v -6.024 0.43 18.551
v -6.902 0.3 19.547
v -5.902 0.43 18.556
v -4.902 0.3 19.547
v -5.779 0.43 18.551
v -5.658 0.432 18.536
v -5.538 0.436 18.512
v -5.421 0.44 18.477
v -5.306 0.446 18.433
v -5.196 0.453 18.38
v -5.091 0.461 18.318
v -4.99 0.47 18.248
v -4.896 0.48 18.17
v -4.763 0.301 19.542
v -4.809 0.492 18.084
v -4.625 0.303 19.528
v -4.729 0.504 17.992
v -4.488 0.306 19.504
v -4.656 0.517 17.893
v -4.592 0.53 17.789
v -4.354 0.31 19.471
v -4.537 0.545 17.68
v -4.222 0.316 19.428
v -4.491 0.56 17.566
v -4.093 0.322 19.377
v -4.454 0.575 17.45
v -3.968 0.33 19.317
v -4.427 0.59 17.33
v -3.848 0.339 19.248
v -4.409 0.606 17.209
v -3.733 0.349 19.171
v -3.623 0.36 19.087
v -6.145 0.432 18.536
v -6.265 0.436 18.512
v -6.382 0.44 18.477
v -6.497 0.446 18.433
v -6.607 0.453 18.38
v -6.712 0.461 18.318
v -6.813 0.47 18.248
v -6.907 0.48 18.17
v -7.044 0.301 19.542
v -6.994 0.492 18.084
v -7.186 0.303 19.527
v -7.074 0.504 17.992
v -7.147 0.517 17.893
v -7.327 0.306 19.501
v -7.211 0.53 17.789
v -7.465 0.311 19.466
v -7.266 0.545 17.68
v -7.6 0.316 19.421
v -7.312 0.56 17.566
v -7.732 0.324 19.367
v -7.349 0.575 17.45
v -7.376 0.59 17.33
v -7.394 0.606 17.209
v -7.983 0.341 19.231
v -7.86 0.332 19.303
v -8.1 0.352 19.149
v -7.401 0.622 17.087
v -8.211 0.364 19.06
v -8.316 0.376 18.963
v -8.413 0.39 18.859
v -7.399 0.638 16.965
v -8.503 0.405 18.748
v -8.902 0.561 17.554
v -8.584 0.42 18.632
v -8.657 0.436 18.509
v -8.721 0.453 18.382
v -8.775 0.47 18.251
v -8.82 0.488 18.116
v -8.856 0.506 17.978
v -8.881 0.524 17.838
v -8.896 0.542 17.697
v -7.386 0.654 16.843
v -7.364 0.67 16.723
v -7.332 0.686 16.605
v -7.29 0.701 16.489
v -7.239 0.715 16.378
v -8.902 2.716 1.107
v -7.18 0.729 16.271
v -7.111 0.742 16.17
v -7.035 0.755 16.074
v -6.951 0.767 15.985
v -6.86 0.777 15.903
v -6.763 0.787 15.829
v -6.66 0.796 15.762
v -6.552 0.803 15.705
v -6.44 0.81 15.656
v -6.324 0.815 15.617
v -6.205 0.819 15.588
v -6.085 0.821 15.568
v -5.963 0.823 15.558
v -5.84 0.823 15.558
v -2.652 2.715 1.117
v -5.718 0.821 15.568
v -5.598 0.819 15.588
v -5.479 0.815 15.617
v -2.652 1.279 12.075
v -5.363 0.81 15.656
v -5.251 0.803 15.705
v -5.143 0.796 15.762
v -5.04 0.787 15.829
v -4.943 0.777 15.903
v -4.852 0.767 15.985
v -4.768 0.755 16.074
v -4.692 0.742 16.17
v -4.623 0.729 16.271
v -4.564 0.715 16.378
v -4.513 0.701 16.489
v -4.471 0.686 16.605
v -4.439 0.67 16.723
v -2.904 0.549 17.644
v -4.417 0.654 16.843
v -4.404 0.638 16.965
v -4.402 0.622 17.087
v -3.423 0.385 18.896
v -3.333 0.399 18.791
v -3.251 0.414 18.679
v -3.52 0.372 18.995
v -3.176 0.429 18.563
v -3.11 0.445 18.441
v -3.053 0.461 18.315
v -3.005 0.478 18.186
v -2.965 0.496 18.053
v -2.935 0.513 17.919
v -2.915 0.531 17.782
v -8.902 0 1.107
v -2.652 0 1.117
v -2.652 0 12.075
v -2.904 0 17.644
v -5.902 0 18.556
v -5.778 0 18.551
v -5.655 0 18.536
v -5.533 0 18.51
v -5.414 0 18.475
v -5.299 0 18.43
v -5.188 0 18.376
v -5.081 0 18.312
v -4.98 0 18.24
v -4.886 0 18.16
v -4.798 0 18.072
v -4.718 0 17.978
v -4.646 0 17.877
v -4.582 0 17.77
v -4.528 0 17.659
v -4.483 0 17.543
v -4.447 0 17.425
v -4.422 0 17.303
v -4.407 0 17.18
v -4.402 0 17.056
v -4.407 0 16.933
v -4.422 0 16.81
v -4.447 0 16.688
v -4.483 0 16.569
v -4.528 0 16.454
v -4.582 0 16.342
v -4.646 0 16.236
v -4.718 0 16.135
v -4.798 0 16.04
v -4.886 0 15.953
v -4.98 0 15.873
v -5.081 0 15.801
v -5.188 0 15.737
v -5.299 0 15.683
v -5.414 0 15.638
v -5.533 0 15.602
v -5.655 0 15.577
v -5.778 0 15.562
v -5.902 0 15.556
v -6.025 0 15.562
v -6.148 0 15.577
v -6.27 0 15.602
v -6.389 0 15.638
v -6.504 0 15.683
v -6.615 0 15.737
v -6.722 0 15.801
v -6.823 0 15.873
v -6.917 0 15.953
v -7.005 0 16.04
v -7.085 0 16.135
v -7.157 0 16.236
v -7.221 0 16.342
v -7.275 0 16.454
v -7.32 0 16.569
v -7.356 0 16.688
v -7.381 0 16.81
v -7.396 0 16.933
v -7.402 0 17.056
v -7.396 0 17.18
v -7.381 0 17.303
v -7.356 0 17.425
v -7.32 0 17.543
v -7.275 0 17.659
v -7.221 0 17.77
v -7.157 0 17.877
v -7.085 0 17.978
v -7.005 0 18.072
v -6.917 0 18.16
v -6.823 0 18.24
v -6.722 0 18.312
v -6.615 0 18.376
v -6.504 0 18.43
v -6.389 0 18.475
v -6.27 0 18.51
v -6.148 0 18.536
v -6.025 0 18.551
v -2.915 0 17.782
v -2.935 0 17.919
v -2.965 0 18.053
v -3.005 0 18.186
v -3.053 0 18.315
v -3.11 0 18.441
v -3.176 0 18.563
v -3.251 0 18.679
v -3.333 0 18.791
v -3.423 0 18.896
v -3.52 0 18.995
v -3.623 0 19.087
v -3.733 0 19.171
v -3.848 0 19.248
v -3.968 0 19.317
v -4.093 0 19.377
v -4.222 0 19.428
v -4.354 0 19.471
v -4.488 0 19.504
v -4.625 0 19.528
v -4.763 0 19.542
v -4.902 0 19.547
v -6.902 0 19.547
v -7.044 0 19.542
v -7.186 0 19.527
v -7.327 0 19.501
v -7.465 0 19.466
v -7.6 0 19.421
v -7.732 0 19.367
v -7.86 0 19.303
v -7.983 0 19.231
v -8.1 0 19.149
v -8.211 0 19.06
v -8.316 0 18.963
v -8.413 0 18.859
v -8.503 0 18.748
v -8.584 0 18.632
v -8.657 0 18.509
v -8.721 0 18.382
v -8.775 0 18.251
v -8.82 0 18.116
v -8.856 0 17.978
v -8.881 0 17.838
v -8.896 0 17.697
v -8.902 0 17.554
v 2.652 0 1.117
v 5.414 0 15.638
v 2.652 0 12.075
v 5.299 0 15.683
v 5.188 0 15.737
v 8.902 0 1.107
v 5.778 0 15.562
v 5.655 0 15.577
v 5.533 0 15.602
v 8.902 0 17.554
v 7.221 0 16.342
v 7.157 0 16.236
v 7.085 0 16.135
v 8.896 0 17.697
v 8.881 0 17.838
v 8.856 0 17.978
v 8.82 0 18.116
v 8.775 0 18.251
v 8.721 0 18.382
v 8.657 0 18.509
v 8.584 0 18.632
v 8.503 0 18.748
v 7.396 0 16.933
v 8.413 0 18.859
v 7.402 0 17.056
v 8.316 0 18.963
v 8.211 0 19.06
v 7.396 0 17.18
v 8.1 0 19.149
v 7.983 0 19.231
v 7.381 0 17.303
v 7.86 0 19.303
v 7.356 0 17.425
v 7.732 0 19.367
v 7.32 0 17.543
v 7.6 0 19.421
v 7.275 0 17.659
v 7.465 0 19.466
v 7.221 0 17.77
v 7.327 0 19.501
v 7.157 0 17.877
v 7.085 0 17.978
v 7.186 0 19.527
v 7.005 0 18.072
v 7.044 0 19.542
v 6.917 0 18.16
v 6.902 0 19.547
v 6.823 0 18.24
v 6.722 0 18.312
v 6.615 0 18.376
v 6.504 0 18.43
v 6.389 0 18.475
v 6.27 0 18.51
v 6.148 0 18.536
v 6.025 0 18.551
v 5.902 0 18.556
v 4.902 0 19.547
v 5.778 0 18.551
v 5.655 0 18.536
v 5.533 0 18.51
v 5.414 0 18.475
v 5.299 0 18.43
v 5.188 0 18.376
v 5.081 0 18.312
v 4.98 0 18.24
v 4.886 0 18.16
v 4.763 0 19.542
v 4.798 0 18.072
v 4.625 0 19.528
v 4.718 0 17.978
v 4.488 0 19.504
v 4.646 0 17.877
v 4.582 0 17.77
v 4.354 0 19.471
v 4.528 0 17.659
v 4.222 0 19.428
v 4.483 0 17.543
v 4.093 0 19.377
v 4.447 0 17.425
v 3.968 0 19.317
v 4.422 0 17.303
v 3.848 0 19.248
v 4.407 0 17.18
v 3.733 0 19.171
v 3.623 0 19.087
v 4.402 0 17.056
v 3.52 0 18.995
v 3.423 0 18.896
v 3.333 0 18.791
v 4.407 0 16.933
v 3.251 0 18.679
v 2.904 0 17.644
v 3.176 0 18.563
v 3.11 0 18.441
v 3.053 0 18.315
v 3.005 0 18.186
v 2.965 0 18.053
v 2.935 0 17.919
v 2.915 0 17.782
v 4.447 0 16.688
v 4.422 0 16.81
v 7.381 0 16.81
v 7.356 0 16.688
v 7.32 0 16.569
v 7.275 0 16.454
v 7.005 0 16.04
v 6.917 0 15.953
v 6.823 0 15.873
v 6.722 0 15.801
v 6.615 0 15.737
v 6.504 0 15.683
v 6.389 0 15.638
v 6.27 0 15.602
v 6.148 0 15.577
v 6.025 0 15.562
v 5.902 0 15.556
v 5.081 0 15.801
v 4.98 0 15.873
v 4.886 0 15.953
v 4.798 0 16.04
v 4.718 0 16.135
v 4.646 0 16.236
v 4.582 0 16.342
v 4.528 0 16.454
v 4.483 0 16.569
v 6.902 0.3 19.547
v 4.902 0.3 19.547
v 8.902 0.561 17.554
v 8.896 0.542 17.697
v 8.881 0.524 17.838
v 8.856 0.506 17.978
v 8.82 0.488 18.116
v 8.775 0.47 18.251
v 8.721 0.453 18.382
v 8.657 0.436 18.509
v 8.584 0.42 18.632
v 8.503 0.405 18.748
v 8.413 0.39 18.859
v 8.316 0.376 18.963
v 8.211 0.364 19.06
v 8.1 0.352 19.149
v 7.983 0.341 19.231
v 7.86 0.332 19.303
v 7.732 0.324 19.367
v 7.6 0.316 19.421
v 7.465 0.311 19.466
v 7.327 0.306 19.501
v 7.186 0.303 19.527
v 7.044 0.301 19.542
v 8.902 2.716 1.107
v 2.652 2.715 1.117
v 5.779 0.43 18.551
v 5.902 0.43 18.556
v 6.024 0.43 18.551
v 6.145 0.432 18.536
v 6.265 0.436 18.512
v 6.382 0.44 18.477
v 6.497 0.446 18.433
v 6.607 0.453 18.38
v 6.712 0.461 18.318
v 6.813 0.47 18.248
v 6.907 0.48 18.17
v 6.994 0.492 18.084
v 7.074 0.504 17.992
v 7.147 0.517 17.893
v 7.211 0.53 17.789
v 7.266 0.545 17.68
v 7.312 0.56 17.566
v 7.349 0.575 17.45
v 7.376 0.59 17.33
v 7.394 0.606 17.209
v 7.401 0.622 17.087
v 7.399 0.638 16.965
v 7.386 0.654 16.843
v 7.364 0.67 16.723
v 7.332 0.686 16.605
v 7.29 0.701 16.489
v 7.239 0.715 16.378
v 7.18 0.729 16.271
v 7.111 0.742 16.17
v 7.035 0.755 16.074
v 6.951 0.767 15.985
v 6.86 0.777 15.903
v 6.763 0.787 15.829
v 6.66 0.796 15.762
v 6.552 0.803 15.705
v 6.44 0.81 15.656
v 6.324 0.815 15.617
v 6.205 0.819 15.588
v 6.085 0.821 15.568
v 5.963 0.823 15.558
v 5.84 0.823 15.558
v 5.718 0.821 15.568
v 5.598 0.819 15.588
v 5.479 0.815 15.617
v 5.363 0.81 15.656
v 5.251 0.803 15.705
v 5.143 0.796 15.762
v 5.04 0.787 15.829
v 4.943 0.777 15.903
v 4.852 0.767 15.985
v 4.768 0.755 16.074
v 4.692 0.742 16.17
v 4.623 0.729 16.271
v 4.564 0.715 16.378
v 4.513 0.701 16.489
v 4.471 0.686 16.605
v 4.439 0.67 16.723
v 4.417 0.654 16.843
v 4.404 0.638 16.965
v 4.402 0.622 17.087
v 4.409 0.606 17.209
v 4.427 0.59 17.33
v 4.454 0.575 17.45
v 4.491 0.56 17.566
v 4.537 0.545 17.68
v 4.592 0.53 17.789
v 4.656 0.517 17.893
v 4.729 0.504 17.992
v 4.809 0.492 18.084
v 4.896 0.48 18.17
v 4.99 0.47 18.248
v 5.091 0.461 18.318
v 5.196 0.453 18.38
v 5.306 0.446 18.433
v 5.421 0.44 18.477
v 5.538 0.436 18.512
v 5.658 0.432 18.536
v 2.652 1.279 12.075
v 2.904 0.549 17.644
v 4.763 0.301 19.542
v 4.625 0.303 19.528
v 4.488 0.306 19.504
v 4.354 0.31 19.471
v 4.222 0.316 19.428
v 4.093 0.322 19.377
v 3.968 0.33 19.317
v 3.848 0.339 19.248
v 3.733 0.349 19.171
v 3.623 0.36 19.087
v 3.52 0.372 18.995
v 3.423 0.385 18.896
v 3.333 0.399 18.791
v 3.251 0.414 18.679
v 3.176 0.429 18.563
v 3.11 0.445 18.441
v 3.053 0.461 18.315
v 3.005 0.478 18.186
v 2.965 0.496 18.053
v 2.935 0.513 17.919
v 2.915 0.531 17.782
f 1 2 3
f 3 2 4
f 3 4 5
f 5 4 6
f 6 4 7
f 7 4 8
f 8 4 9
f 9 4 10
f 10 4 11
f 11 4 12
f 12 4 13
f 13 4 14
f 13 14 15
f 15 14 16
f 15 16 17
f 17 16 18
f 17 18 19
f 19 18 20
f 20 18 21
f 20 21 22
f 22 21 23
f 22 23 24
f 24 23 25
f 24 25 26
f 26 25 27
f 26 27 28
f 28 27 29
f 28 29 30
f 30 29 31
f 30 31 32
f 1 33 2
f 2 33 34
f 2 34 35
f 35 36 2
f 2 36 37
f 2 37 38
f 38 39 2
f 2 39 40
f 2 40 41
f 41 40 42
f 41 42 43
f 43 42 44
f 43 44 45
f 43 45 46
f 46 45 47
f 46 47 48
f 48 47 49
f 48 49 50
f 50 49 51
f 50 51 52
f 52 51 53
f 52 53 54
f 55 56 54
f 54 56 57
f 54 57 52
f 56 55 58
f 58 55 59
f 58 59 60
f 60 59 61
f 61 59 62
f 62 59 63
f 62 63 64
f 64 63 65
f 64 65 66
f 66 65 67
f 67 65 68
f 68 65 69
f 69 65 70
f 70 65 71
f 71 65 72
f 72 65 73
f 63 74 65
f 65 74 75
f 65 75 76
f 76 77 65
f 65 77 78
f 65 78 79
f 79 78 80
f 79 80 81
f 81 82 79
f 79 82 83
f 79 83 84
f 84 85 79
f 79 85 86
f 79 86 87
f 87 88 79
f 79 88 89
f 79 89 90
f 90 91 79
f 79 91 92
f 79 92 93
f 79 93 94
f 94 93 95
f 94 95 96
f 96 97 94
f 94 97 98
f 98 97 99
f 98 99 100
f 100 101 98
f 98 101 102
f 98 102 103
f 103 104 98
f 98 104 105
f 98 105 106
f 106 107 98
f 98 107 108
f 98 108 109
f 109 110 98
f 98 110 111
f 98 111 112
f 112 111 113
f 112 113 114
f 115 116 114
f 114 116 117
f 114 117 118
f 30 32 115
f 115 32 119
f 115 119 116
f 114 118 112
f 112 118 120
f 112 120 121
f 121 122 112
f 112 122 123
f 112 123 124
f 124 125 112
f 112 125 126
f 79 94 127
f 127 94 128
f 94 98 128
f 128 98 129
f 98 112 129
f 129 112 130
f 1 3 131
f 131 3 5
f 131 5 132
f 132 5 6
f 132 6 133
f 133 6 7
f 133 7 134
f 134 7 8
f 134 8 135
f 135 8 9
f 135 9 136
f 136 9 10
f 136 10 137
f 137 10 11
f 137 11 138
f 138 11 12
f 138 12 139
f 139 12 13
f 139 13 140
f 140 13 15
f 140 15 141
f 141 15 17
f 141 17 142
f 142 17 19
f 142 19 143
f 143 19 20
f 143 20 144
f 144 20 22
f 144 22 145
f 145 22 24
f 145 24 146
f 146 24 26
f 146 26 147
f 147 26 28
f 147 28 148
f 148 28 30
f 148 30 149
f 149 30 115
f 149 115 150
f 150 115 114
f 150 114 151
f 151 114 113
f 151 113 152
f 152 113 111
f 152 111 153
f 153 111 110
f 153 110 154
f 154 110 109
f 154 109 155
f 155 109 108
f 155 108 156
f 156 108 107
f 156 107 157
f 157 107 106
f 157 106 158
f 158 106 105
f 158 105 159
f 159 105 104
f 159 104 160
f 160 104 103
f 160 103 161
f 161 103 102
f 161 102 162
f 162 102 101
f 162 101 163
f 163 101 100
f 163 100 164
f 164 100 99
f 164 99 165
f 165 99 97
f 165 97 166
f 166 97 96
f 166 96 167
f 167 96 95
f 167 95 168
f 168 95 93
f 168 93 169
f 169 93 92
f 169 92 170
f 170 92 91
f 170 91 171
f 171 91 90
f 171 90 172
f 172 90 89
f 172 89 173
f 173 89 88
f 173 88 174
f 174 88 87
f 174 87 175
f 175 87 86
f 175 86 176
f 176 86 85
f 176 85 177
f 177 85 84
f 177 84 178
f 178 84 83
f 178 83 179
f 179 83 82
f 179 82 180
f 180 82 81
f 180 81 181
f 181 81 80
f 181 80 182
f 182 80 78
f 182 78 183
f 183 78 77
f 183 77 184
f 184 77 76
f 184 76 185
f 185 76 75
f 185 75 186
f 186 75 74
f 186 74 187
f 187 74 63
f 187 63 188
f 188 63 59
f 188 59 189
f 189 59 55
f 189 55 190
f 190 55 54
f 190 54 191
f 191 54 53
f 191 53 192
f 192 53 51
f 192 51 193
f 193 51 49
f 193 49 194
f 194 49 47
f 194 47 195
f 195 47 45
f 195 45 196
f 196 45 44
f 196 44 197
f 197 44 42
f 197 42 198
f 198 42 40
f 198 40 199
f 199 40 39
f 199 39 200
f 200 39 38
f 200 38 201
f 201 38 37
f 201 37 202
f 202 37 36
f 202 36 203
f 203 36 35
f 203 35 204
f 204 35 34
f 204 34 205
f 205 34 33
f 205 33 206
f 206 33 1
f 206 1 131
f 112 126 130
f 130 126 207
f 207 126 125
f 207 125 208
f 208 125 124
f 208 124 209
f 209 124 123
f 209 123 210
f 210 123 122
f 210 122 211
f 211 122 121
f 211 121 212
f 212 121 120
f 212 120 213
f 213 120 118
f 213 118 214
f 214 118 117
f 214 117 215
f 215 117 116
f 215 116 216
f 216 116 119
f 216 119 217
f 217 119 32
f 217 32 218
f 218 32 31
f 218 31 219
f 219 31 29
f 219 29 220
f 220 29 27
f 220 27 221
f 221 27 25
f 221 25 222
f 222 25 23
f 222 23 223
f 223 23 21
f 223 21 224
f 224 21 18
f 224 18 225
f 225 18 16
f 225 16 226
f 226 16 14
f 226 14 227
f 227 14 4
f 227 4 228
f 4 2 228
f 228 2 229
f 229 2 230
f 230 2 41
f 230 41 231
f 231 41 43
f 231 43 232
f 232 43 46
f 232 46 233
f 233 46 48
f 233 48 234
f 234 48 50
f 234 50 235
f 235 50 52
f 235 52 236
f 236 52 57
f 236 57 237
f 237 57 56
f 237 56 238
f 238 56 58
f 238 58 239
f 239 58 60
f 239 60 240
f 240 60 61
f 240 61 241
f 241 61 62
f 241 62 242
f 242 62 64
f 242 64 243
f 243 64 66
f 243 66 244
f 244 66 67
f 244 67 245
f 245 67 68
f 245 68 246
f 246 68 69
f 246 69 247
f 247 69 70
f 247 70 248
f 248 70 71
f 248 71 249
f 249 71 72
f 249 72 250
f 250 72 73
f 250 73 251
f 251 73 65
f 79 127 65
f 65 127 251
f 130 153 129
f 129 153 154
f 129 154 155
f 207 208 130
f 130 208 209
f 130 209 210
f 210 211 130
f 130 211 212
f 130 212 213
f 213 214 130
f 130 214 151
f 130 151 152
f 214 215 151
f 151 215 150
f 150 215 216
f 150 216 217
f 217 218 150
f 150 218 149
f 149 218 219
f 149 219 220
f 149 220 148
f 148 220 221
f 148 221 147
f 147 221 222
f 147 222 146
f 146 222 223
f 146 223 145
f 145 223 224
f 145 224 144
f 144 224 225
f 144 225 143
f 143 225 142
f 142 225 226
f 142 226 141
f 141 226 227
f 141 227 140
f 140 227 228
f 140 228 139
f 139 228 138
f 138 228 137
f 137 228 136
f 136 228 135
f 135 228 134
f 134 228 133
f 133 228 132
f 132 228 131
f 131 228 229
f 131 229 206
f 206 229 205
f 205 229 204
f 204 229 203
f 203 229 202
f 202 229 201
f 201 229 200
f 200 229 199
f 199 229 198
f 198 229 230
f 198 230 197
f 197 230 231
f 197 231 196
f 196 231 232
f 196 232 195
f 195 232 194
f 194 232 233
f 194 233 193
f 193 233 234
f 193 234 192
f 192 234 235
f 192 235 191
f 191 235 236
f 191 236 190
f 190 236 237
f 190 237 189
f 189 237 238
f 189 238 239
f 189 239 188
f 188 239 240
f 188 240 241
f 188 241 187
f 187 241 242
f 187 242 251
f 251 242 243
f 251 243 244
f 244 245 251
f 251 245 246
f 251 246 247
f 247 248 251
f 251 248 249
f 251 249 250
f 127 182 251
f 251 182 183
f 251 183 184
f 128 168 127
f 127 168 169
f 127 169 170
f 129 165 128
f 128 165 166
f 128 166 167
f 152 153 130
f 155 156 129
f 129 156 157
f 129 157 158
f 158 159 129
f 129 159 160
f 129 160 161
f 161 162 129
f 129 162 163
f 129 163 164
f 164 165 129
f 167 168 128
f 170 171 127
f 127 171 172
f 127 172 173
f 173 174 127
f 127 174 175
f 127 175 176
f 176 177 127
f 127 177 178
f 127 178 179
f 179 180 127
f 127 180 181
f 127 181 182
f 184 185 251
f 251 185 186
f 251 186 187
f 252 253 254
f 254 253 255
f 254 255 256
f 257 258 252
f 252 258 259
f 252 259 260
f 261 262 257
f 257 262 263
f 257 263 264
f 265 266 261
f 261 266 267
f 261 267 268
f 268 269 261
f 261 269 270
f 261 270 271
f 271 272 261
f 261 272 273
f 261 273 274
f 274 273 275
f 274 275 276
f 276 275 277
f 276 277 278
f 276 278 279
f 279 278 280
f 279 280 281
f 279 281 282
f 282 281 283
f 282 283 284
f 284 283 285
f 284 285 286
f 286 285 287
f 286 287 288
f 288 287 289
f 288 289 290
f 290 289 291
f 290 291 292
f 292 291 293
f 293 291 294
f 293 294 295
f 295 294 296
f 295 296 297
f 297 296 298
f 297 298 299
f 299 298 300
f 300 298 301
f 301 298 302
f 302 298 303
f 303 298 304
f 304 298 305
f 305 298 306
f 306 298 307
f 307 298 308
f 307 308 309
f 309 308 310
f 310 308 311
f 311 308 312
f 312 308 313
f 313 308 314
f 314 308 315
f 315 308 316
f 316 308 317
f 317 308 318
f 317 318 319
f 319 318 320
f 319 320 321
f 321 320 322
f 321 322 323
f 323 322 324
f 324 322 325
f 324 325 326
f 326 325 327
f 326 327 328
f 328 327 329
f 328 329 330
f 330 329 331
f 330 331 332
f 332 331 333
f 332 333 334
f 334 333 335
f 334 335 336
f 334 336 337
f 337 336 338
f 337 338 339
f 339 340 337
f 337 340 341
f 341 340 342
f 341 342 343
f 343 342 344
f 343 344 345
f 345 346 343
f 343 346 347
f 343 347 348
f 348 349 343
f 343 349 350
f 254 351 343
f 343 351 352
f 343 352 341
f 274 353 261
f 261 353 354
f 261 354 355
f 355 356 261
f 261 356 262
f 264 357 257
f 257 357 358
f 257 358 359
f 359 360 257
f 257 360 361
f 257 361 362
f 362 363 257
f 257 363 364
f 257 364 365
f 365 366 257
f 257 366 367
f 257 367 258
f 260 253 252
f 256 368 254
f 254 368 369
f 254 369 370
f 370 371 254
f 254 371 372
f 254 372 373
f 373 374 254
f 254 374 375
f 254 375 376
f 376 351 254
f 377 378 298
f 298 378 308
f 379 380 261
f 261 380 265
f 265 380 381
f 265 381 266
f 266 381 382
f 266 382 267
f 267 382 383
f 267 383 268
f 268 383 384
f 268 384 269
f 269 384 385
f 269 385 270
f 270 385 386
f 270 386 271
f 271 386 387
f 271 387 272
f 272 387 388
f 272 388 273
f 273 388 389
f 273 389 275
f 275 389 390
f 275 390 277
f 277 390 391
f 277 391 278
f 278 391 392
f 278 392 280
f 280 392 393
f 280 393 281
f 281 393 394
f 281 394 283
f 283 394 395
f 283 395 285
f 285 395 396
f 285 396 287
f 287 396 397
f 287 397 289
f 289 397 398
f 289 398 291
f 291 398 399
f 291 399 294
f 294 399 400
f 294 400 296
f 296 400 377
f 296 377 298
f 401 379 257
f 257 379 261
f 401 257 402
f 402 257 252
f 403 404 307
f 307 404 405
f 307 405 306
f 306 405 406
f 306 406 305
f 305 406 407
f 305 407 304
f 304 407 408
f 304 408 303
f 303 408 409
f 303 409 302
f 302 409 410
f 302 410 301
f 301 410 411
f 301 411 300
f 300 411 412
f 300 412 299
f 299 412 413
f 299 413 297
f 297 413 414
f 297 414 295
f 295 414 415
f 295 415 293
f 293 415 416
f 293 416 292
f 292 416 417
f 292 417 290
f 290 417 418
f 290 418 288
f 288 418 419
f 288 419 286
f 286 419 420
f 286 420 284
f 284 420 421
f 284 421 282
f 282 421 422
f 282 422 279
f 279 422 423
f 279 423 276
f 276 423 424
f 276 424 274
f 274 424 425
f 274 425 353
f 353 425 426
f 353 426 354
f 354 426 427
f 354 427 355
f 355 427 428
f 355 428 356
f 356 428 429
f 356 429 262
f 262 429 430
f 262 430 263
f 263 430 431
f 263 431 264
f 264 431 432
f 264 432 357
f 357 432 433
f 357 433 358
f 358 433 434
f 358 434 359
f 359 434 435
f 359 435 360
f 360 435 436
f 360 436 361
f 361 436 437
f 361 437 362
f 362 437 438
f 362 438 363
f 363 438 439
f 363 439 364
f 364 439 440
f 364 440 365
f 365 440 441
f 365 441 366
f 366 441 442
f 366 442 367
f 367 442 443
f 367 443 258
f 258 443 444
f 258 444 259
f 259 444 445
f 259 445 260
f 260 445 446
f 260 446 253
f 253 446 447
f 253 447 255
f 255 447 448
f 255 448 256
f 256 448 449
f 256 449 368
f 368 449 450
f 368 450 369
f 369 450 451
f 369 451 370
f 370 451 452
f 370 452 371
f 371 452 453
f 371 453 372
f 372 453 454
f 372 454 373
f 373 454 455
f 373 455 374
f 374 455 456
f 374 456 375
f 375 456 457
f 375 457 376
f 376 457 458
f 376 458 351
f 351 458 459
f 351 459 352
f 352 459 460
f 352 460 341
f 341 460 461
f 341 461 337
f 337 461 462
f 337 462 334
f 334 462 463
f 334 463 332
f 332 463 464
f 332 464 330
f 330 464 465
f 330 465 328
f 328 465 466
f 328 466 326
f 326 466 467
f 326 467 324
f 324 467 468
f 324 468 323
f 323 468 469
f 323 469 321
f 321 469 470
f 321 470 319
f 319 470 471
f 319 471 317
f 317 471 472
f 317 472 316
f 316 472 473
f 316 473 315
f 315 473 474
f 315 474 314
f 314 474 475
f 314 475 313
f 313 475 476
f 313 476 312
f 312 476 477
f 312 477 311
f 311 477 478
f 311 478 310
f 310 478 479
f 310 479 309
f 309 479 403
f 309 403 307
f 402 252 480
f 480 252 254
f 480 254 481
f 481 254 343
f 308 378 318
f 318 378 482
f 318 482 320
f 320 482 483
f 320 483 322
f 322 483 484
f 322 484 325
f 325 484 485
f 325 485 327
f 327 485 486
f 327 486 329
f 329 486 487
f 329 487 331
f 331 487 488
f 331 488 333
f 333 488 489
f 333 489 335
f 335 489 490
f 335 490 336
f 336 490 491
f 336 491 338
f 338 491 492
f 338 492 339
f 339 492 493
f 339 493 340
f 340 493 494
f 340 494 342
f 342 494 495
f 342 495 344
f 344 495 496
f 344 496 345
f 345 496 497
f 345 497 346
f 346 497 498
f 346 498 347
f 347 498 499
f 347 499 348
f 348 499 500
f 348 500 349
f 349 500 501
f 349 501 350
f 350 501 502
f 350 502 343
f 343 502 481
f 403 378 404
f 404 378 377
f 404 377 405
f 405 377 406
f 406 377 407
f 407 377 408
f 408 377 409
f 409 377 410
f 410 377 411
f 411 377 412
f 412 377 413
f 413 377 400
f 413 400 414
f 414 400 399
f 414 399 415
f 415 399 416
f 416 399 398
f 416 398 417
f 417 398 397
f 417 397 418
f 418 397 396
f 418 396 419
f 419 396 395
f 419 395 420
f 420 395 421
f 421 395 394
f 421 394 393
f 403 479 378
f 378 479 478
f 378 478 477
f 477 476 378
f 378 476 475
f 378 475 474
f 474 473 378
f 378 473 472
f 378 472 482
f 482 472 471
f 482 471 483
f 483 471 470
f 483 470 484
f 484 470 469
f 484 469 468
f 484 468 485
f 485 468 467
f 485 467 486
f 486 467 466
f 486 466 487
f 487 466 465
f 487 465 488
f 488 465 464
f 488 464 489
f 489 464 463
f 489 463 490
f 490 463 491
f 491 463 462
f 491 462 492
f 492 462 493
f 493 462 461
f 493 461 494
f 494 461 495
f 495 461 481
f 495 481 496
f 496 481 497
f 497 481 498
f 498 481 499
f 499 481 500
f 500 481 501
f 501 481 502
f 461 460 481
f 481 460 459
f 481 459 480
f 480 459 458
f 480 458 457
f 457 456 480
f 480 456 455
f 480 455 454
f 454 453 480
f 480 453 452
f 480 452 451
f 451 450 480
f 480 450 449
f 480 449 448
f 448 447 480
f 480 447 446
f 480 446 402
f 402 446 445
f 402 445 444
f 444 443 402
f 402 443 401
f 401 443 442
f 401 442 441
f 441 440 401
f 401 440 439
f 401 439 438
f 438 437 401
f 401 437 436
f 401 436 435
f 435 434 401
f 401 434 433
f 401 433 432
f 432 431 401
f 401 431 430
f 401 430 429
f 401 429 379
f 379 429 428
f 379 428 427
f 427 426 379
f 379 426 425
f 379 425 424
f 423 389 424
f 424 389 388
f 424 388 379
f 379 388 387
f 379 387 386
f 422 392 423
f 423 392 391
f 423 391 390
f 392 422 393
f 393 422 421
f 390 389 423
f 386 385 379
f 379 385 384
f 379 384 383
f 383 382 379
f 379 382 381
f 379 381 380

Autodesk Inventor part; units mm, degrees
ref_plane "YZ Plane" through (0, 0, 0) normal (1, 0, 0) x (0, 1, 0)
ref_plane "XZ Plane" through (0, 0, 0) normal (0, 1, 0) x (-1, 0, 0)
ref_plane "XY Plane" through (0, 0, 0) normal (0, 0, 1) x (1, 0, 0)
sketch "Sketch1" plane through (0, 0, 0) normal (0, 1, 0) x (-1, 0, 0)
  line L0 (-8.9015, 1.1073) -> (-8.9015, 17.5545)
  line L1 (-2.6515, 1.1073) -> (-8.9015, 1.1073)
  line L2 (-2.6515, 12.0754) -> (-2.6515, 1.1172)
  line L3 (-2.9035, 17.6442) -> (-2.6515, 12.0754)
  ellipse E0 centre (-4.9015, 17.5545) end of major axis (-2.9015, 17.5545) minor radius 1.9924 (-2.9035, 17.6442) -> (-4.9015, 19.5469) ccw
  line L4 (-6.9015, 19.5469) -> (-4.9015, 19.5469)
  ellipse E1 centre (-6.9015, 17.5545) end of major axis (-8.9015, 17.5545) minor radius 1.9924 (-6.9015, 19.5469) -> (-8.9015, 17.5545) ccw
  ellipse E2 centre (-5.9015, 17.0564) end of major axis (-4.4015, 17.0564) minor radius 1.4943
  line L5 (-8.9015, 1.1073) -> (-8.9015, 1.3688)
  line L6 (-8.9015, 1.1073) -> (-2.6515, 1.1172)
  line L7 (-2.6515, 1.1172) -> (-2.6515, 12.0754)
  line L8 (-2.6515, 12.0754) -> (-2.9035, 17.6442)
  line L9 (-8.9015, 1.1073) -> (-8.9015, 17.5545)
  line L10 (-6.9015, 19.5469) -> (-4.9015, 19.5469)
  circle A0 centre (-5.9015, 17.0564) radius 1.5
  line L11 (8.9015, 1.1073) -> (8.9015, 17.5545)
  line L12 (2.6515, 1.1073) -> (8.9015, 1.1073)
  line L13 (2.6515, 12.0754) -> (2.6515, 1.1172)
  line L14 (2.9035, 17.6442) -> (2.6515, 12.0754)
  ellipse E3 centre (4.9015, 17.5545) end of major axis (2.9015, 17.5545) minor radius 1.9924 (4.9015, 19.5469) -> (2.9035, 17.6442) ccw
  line L15 (6.9015, 19.5469) -> (4.9015, 19.5469)
  ellipse E4 centre (6.9015, 17.5545) end of major axis (8.9015, 17.5545) minor radius 1.9924 (8.9015, 17.5545) -> (6.9015, 19.5469) ccw
  ellipse E5 centre (5.9015, 17.0564) end of major axis (4.4015, 17.0564) minor radius 1.4943
  line L16 (8.9015, 1.1073) -> (8.9015, 1.3688)
  line L17 (8.9015, 1.1073) -> (2.6515, 1.1172)
  line L18 (2.6515, 1.1172) -> (2.6515, 12.0754)
  line L19 (2.6515, 12.0754) -> (2.9035, 17.6442)
  line L20 (8.9015, 1.1073) -> (8.9015, 17.5545)
  line L21 (6.9015, 19.5469) -> (4.9015, 19.5469)
  circle A1 centre (5.9015, 17.0564) radius 1.5
  point P0 (0, 0)
  point P1 (-18.0813, 13.3212)
extrude "Extrusion1" add sketch "Sketch1" along normal blind 10
sketch "Sketch2" plane through (8.9015, 0, 17.5545) normal (1, 0, 0) x (0, 0, -1)
  line L0 (16.4472, 2.716) -> (-1.9924, 0.3)
  line L1 (16.4472, 2.716) -> (16.4472, 13.2162)
  line L2 (16.4472, 13.2162) -> (-1.9924, 13.2162)
  line L3 (-1.9924, 13.2162) -> (-1.9924, 0.3)
  line L4 (0, 0) -> (-1.9924, 0) projected
  point P0 (17.5545, 0)
  point P1 (16.4472, 0)
  dimension "d5" = 2.716
  dimension "d8" = 0.3
extrude "Extrusion2" cut sketch "Sketch2" against normal through all
properties part number "7,5degree spacer"
